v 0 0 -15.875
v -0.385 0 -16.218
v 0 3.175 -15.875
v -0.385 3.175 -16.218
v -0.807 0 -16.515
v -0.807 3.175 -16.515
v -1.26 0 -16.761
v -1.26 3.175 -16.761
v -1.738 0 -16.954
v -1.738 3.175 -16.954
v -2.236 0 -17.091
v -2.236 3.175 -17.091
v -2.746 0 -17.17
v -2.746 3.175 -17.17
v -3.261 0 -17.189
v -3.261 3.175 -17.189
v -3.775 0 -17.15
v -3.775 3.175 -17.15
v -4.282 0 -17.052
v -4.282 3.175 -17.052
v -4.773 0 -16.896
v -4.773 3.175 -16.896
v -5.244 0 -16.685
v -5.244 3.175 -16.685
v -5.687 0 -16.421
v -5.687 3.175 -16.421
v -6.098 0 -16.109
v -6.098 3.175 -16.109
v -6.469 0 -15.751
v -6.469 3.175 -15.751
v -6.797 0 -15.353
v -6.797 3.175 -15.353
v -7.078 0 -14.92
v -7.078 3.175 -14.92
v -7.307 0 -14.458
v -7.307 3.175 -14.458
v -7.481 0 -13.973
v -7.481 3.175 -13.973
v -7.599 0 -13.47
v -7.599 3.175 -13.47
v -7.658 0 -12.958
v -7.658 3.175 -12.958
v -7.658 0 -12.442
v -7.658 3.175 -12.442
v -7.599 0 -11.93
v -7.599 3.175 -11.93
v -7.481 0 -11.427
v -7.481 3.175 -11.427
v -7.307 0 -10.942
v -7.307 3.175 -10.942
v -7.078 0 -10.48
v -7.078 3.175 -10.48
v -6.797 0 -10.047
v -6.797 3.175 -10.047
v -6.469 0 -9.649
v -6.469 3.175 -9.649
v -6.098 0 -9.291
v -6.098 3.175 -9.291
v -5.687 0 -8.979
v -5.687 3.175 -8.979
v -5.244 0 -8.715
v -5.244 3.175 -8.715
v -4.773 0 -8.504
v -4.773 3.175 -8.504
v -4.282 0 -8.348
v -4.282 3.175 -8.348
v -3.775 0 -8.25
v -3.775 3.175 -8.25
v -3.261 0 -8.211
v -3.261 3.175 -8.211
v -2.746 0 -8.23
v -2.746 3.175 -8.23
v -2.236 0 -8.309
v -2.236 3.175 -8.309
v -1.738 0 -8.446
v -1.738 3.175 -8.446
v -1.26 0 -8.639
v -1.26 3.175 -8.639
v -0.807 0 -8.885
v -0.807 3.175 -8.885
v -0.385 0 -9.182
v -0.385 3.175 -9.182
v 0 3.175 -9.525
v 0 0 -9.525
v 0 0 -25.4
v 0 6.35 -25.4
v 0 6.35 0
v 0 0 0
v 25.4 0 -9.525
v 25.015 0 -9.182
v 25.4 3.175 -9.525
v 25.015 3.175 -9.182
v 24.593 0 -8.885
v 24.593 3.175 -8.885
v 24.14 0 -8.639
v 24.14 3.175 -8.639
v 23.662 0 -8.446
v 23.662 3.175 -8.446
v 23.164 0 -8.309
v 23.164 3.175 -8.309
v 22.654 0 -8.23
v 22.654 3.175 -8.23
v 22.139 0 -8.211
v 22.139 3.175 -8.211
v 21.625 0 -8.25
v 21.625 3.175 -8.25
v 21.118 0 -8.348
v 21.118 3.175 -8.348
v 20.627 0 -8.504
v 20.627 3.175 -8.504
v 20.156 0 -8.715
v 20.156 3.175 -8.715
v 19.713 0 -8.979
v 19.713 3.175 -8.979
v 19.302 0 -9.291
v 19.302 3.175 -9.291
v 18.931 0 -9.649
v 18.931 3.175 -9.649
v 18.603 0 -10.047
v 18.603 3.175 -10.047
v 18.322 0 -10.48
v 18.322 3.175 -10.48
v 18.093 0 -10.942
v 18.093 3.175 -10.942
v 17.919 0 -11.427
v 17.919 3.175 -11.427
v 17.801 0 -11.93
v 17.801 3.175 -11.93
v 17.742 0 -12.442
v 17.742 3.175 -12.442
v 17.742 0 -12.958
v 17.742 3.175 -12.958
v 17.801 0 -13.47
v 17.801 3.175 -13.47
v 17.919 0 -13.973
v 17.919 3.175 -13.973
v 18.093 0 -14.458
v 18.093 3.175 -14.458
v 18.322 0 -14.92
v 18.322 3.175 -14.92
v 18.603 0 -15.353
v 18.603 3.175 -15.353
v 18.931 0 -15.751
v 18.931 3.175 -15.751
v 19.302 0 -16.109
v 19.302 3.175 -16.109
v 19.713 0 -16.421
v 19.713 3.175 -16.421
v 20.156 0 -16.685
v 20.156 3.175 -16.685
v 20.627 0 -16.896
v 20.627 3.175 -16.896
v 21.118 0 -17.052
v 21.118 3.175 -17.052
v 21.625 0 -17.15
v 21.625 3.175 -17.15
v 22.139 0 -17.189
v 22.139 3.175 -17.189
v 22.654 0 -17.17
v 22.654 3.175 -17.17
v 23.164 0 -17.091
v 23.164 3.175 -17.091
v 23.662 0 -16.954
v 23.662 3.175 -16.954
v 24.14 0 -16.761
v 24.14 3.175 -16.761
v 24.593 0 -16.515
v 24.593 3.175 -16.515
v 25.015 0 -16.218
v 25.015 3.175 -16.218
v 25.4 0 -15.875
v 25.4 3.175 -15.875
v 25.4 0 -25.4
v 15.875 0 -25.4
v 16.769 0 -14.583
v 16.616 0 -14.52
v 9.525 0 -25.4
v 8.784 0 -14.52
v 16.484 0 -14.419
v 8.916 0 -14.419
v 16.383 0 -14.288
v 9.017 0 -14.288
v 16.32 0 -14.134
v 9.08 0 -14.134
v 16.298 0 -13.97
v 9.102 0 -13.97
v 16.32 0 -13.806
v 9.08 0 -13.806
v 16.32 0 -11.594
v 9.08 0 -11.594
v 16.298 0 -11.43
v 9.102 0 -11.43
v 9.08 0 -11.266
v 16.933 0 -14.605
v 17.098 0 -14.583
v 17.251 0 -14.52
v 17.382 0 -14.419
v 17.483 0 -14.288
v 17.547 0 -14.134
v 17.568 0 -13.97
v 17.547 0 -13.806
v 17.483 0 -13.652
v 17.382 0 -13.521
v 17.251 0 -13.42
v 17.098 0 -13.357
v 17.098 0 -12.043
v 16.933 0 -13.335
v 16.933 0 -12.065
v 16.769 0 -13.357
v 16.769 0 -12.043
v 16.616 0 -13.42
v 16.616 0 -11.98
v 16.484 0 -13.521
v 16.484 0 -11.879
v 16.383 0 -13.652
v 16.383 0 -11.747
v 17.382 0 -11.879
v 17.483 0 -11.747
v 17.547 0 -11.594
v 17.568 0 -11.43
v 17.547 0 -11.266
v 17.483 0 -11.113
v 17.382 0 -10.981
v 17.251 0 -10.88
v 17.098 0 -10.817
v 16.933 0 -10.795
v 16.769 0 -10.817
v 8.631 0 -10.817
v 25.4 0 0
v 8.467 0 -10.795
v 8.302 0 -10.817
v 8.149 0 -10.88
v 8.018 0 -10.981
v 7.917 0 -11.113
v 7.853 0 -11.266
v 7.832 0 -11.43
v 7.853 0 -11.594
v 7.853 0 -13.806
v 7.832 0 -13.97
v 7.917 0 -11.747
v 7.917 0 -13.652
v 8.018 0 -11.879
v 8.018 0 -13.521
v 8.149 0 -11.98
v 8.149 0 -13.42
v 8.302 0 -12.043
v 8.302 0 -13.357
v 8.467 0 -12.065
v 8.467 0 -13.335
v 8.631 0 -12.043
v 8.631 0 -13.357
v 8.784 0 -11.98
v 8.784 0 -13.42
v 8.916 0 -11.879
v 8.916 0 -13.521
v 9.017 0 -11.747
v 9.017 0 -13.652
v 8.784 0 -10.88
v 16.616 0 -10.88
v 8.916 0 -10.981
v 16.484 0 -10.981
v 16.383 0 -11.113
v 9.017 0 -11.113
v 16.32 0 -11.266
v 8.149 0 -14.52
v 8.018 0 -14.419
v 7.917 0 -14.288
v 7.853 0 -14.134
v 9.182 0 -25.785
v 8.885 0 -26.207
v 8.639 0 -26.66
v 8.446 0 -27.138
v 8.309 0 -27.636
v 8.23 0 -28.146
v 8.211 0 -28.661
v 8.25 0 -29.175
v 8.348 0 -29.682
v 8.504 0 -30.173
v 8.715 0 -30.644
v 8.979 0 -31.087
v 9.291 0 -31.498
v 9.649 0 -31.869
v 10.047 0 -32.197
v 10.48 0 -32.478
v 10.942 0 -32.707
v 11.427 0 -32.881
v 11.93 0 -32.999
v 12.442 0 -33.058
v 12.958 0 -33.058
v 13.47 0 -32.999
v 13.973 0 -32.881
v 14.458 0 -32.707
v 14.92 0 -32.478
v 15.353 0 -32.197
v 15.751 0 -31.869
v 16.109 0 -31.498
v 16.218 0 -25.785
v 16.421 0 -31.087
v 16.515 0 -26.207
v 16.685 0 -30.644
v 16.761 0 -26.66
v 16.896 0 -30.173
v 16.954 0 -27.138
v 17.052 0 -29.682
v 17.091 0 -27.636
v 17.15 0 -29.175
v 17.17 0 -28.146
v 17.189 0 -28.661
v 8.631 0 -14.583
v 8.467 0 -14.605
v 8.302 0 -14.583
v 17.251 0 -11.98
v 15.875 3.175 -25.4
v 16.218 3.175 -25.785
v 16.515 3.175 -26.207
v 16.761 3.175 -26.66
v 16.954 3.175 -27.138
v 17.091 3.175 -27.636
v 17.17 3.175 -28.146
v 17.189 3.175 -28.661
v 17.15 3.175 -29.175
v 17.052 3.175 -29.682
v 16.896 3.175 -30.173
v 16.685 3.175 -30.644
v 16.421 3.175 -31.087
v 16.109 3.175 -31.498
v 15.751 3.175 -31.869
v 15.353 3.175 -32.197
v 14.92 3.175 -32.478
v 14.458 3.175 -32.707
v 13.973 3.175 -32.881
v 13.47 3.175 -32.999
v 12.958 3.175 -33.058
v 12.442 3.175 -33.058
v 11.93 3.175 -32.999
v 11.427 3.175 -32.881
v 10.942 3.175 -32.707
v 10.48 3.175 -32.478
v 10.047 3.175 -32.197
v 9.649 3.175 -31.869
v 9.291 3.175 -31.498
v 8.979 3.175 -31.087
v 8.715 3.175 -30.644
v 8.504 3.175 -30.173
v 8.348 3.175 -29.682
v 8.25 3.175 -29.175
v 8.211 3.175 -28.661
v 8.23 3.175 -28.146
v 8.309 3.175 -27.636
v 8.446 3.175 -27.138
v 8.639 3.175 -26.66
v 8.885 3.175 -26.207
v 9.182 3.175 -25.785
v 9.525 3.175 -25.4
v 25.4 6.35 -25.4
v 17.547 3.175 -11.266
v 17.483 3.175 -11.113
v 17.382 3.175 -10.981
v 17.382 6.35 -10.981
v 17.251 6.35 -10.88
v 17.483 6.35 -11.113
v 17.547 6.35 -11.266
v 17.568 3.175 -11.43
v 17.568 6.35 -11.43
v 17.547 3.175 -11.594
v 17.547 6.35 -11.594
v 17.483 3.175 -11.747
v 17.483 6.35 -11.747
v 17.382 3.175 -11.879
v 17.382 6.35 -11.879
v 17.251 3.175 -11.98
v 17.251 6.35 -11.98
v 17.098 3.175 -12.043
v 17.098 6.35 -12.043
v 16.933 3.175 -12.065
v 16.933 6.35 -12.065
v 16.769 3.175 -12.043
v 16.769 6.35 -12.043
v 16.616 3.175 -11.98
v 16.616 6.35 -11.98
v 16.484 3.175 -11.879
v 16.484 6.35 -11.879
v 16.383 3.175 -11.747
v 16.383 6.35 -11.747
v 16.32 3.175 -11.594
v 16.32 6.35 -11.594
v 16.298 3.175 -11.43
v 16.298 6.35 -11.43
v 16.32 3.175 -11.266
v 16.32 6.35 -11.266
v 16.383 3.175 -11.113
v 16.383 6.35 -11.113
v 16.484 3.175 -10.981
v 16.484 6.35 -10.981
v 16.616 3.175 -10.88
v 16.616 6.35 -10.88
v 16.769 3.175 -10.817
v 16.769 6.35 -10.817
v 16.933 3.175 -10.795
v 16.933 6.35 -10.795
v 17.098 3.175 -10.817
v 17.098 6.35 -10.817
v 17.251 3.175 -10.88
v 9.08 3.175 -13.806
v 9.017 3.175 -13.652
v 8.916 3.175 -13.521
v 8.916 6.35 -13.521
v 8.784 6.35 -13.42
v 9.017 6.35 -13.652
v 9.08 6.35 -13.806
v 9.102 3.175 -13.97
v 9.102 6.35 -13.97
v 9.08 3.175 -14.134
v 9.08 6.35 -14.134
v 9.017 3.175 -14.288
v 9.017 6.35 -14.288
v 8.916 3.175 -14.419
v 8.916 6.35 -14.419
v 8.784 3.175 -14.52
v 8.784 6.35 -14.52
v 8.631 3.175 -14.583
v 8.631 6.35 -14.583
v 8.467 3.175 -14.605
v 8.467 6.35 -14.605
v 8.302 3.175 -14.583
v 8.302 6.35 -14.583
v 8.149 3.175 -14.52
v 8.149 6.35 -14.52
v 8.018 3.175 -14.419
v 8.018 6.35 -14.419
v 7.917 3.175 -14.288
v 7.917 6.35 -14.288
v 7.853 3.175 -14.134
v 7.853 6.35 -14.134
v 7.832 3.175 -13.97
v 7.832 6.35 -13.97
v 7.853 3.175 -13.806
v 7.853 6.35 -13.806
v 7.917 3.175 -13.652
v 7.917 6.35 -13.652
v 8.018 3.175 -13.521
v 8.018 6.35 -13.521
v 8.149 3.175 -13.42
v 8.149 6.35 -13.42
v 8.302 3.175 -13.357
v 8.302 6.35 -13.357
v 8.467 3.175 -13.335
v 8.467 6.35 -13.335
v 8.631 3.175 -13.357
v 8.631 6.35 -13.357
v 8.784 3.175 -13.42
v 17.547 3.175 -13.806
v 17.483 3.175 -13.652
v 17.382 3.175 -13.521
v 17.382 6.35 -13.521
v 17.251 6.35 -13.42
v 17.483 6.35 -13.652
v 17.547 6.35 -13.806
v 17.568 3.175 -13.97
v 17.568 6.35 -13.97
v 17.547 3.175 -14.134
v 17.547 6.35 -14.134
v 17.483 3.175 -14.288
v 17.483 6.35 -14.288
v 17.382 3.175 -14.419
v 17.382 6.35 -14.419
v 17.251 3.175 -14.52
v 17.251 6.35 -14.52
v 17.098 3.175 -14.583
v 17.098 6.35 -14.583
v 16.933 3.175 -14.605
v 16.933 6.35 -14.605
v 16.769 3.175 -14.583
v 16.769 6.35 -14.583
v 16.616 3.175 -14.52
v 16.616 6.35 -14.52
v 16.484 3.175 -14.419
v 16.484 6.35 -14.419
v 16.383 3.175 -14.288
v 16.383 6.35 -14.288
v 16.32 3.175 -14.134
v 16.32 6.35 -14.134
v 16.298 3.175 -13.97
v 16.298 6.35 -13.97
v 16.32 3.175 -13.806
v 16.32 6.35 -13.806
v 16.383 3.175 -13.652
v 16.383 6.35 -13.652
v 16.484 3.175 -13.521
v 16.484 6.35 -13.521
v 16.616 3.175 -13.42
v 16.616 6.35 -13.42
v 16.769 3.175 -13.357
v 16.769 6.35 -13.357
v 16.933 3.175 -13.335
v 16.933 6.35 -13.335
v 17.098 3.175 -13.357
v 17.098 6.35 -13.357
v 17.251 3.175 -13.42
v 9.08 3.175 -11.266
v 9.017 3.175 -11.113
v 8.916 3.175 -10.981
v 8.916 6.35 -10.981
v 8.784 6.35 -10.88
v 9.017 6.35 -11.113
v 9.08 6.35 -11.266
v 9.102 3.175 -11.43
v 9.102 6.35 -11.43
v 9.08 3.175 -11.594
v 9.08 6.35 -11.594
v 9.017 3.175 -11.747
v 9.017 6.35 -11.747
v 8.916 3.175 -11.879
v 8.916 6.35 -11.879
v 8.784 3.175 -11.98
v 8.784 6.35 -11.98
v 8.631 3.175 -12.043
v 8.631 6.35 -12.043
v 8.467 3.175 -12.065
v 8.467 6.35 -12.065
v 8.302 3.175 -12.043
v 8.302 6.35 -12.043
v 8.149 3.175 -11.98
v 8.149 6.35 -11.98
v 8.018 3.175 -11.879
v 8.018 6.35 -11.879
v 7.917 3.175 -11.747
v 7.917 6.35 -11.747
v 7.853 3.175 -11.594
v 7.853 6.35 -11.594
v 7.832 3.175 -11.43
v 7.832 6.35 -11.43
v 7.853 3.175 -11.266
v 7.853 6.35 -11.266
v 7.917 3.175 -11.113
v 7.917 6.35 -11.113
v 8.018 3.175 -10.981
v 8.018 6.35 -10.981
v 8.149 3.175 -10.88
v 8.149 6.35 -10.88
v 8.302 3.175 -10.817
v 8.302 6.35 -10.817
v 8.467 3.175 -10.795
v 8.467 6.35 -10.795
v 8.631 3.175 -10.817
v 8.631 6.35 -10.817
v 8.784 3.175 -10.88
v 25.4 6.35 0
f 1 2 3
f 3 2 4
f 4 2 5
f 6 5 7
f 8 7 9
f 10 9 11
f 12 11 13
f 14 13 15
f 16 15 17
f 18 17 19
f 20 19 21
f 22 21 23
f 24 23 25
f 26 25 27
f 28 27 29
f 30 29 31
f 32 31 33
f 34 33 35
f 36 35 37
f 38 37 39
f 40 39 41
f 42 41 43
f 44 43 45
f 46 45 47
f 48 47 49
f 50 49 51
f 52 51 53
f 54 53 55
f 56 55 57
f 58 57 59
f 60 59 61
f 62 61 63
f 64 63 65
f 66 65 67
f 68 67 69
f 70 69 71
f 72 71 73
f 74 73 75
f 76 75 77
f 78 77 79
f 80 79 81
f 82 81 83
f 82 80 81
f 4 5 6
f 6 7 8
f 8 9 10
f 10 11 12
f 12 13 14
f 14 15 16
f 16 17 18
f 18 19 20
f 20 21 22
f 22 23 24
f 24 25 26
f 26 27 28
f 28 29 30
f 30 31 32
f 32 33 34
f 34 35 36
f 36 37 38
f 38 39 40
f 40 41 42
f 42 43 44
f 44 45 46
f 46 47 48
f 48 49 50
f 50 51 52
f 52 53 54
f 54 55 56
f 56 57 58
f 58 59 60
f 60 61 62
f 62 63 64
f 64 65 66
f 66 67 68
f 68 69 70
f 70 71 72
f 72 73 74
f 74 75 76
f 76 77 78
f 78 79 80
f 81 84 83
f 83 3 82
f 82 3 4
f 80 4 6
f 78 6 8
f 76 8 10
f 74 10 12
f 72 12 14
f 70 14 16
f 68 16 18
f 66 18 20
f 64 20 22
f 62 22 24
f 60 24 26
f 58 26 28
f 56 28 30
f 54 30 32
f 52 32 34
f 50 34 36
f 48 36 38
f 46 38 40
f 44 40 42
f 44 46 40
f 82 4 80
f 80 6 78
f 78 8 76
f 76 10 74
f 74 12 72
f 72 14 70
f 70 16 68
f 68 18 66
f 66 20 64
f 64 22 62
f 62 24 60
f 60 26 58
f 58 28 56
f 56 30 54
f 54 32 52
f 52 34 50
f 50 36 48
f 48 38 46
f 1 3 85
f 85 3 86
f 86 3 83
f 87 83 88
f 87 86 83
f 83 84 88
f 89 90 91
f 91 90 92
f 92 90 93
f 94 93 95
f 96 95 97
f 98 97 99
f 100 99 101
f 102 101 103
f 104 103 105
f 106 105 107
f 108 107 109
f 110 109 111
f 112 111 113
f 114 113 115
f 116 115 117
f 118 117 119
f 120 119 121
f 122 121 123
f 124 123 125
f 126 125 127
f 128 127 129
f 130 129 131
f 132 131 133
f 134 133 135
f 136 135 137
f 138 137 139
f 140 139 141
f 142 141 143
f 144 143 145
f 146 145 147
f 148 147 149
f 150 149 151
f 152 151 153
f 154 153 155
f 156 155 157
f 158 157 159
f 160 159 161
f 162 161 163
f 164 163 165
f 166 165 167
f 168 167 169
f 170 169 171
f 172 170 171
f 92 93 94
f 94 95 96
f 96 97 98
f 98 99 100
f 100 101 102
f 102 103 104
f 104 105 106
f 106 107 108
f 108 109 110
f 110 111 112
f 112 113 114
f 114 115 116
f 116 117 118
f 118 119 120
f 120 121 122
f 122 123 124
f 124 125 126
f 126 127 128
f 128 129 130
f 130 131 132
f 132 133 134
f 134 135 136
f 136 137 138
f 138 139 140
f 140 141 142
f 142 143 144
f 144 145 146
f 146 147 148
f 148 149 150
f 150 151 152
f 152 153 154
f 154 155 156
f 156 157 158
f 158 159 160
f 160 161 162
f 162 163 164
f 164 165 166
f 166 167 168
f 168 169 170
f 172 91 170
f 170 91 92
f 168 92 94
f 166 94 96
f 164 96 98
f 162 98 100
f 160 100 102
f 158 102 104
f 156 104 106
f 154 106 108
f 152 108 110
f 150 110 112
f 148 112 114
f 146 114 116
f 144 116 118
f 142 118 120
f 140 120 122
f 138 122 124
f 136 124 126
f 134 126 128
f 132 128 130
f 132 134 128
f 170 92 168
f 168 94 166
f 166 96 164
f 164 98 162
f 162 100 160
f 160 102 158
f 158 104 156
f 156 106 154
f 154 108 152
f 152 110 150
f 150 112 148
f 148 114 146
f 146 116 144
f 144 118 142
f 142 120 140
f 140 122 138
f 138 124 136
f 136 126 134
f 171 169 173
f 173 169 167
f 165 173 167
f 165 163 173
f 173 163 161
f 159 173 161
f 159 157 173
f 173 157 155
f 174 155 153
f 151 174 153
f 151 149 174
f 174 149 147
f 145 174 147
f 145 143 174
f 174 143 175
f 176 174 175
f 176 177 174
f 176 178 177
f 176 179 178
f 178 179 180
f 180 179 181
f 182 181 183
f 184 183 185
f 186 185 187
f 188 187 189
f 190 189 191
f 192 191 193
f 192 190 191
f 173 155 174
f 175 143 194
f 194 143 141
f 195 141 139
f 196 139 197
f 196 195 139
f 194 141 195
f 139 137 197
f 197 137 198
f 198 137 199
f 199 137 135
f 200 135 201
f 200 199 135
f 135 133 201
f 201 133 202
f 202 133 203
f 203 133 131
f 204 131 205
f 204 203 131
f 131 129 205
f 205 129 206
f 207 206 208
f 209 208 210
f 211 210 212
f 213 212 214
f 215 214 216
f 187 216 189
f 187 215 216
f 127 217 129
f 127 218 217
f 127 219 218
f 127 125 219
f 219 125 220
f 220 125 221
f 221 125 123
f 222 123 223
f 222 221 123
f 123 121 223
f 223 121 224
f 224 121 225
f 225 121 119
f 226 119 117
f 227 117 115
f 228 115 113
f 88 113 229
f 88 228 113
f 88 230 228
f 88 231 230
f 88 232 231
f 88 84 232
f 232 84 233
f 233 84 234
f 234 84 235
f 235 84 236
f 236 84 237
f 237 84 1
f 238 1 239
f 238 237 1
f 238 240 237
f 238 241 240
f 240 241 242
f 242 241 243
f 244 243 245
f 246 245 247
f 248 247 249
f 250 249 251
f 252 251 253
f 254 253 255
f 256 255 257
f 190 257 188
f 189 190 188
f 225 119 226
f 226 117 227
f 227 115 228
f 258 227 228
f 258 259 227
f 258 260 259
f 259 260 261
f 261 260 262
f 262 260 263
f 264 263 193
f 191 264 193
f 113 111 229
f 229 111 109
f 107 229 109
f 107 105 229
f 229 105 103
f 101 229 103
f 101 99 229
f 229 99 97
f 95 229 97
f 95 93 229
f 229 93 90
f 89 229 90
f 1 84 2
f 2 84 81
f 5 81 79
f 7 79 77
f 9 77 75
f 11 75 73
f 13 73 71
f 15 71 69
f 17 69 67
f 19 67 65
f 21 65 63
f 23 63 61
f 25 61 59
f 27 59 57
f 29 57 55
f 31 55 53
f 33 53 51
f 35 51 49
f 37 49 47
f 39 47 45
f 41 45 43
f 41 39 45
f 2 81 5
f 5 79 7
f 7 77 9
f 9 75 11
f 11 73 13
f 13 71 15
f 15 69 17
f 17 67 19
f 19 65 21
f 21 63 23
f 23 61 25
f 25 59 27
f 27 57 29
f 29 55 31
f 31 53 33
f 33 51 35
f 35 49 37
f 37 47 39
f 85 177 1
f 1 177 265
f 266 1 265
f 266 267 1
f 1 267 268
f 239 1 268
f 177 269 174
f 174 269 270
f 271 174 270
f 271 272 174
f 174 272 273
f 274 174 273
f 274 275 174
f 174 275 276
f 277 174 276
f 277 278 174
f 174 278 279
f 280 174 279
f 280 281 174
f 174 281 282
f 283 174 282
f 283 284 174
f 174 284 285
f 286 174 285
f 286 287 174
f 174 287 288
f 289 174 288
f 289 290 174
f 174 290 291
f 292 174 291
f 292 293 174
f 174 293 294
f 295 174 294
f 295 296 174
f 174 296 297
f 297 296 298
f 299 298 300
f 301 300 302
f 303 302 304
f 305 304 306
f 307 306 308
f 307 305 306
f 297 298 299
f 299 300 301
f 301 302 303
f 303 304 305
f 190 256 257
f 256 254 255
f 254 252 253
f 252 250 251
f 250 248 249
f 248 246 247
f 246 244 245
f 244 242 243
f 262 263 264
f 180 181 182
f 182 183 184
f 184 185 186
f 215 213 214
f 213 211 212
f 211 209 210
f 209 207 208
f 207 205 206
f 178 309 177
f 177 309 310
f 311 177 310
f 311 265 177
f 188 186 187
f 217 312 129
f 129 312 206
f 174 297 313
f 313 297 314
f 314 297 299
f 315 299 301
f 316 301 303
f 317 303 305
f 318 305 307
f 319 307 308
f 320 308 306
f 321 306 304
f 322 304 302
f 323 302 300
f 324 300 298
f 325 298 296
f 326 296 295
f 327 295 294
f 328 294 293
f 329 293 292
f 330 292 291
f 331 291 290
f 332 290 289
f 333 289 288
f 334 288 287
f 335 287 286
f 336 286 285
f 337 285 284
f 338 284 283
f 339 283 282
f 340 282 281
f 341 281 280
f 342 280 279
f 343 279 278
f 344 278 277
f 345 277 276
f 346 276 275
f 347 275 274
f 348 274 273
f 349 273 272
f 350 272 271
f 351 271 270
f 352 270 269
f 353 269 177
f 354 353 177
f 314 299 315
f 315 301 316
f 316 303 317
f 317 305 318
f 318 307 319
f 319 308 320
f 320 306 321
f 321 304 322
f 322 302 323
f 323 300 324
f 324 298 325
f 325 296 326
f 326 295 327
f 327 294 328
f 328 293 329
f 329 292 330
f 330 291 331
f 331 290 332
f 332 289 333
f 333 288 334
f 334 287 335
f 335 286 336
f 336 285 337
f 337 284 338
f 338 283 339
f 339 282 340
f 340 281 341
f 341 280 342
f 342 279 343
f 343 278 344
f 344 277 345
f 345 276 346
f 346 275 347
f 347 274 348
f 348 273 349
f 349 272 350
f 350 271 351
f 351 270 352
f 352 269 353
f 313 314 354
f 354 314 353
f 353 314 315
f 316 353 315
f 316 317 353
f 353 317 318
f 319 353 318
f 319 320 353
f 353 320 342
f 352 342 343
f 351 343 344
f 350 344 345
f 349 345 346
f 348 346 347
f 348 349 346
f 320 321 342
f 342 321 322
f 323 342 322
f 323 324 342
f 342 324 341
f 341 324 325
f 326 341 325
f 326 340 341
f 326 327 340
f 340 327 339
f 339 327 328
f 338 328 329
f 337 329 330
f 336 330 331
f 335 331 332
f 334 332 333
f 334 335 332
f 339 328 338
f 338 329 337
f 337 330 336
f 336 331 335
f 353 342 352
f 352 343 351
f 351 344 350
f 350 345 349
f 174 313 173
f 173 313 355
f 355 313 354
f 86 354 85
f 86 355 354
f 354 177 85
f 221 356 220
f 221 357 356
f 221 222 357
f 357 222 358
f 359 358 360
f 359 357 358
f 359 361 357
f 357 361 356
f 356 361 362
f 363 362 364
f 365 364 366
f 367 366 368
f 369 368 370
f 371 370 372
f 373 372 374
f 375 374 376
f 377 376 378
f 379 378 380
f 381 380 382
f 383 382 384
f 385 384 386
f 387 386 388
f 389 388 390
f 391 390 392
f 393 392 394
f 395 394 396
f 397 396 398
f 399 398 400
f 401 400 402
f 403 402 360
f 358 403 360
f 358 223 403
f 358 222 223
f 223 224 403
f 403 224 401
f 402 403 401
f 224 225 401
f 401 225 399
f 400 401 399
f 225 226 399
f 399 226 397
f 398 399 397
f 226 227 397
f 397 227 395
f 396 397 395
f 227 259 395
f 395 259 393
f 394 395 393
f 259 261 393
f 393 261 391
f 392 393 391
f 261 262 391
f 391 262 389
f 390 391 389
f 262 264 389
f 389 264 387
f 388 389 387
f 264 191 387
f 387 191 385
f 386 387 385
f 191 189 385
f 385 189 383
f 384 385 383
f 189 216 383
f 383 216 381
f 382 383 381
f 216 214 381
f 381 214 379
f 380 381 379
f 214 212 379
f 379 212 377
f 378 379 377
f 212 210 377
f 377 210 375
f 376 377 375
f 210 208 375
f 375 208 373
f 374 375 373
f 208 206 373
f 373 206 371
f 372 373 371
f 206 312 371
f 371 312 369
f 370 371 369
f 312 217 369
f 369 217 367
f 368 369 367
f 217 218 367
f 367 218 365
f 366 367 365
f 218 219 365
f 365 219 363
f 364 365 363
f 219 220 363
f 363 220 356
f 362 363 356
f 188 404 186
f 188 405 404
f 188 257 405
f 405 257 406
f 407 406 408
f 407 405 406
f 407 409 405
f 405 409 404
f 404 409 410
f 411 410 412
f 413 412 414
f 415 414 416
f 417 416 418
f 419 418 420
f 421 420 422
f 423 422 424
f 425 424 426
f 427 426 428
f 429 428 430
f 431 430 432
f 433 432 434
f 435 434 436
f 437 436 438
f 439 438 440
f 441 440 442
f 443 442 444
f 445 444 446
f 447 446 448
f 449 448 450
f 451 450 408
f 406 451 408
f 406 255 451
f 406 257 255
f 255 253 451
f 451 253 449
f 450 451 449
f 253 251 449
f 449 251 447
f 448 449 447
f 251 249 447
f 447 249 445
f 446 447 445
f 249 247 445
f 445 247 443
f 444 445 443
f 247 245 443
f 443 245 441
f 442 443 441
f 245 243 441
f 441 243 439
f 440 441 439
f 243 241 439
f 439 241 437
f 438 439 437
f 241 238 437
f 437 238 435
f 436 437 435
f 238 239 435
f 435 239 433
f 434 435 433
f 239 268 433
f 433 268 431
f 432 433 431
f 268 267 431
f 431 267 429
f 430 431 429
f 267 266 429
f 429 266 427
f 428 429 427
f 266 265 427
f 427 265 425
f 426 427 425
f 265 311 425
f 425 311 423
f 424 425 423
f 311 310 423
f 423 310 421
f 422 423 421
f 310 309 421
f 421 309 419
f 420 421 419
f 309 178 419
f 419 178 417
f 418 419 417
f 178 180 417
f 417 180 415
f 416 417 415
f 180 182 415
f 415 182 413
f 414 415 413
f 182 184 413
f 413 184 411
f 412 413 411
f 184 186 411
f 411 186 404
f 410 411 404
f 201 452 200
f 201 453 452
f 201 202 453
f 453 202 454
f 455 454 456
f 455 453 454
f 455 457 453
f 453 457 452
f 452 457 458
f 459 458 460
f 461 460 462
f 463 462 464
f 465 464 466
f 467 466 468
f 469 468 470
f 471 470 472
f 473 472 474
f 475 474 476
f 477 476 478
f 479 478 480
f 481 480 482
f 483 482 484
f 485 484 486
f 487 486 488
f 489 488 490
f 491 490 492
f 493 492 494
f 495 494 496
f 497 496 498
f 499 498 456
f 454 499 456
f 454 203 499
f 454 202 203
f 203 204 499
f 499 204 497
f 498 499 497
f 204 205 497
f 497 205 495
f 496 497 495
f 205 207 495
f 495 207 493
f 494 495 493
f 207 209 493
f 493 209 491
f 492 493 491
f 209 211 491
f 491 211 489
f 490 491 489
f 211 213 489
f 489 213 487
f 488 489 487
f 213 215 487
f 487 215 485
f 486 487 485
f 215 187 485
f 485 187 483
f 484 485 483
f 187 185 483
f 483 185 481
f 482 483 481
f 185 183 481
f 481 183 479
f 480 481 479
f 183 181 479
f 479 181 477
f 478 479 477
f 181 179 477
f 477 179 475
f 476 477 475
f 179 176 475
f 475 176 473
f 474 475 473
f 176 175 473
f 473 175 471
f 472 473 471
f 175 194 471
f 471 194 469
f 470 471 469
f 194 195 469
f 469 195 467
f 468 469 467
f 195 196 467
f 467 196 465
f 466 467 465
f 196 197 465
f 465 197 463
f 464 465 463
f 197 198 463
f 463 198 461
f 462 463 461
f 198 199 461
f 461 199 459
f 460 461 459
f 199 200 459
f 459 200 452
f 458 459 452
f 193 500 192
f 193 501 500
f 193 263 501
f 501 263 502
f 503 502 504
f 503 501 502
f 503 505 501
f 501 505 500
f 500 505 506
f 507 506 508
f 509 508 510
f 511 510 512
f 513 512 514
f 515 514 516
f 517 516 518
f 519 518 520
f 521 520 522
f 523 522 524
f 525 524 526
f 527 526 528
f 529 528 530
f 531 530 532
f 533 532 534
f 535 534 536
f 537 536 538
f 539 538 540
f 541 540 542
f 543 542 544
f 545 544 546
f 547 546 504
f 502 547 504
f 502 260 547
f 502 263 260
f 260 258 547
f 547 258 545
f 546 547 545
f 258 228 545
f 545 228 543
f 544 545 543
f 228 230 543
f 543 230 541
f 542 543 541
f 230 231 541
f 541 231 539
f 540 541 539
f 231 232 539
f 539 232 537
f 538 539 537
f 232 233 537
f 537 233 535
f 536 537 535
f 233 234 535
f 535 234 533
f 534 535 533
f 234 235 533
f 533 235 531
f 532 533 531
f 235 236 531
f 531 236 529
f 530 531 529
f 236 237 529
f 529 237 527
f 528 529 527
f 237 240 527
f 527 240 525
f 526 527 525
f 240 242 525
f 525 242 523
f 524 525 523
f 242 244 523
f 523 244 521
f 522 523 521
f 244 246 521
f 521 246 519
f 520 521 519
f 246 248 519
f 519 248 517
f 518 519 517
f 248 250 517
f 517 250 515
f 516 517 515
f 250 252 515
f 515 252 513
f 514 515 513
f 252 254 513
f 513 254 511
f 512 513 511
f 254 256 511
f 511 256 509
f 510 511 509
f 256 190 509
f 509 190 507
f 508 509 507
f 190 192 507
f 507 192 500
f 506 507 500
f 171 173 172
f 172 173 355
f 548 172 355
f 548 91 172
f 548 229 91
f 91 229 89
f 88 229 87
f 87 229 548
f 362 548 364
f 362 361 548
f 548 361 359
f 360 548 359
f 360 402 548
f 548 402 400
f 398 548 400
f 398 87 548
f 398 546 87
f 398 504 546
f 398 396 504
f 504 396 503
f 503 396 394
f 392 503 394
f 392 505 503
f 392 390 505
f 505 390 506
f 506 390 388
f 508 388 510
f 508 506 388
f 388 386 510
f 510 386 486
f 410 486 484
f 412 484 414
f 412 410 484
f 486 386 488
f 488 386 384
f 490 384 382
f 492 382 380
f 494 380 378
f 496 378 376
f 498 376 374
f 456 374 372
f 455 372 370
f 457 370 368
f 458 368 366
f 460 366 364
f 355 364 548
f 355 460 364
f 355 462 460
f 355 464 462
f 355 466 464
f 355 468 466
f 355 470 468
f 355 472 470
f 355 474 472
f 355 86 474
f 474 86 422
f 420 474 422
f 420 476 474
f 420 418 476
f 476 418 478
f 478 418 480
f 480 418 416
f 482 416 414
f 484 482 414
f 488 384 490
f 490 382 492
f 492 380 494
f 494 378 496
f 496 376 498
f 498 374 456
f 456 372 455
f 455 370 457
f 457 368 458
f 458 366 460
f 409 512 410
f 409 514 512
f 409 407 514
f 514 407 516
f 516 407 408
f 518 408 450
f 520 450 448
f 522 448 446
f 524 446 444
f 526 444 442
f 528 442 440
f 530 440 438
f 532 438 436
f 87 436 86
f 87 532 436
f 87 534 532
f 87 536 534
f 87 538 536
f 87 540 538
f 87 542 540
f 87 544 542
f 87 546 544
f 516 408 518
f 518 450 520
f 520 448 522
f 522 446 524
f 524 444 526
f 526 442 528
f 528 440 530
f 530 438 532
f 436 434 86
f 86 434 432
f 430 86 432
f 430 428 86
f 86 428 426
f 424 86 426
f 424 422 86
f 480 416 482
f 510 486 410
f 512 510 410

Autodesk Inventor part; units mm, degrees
ref_plane "YZ Plane" through (0, 0, 0) normal (1, 0, 0) x (0, 1, 0)
ref_plane "XZ Plane" through (0, 0, 0) normal (0, 1, 0) x (-1, 0, 0)
ref_plane "XY Plane" through (0, 0, 0) normal (0, 0, 1) x (1, 0, 0)
sketch "Sketch1" plane through (0, 0, 0) normal (0, 1, 0) x (-1, 0, 0)
  line L0 (0, 0) -> (-25.4, 0)
  line L1 (-25.4, 0) -> (-25.4, -25.4)
  line L2 (-25.4, -25.4) -> (0, -25.4)
  line L3 (0, -25.4) -> (0, 0)
  dimension "d0" = 25.4
extrude "Extrusion1" add sketch "Sketch1" along normal blind 6.35
sketch "Sketch2" plane through (0, 6.35, 0) normal (0, 1, 0) x (1, 0, 0)
  circle A0 centre (8.4667, 13.97) radius 0.635
  circle A1 centre (16.9333, 13.97) radius 0.635
  circle A2 centre (16.9333, 11.43) radius 0.635
  circle A3 centre (8.4667, 11.43) radius 0.635
  line L0 (25.4, 0) -> (25.4, 25.4) projected
  line L1 (0, 0) -> (25.4, 0) projected
  dimension "d3" = 8.4667
  dimension "d4" = 8.4667
  dimension "d5" = 2.54
  dimension "d6" = 1.27
  dimension "d7" = 11.43
extrude "Extrusion2" cut sketch "Sketch2" against normal blind 6.35
sketch "Sketch4" plane through (0, 0, 0) normal (0, -1, 0) x (1, 0, 0)
  line L0 (25.4, -25.4) -> (0, -25.4) projected
  arc A0 (9.525, -25.4) -> (15.875, -25.4) centre (12.7, -28.575) ccw
  line L1 (15.875, -25.4) -> (9.525, -25.4)
  point P0 (0, 0)
  dimension "d10" = 90
  dimension "d11" = 6.35
  dimension "d12" = 9.525
extrude "Extrusion3" add sketch "Sketch4" against normal blind 3.175
sketch "Sketch6" plane through (0, 0, 0) normal (0, -1, 0) x (1, 0, 0)
  line L0 (25.4, 0) -> (25.4, -25.4) projected
  arc A0 (25.4, -9.525) -> (25.4, -15.875) centre (22.225, -12.7) ccw
  line L1 (25.4, -15.875) -> (25.4, -9.525)
  point P0 (0, 0)
  dimension "d21" = 6.35
  dimension "d22" = 90
  dimension "d23" = 9.525
extrude "Extrusion5" cut sketch "Sketch6" against normal blind 3.175
sketch "Sketch7" plane through (0, 0, 0) normal (0, -1, 0) x (1, 0, 0)
  line L0 (0, -25.4) -> (0, 0) projected
  arc A0 (0, -9.525) -> (0, -15.875) centre (-3.175, -12.7) ccw
  line L1 (0, -15.875) -> (0, -9.525)
  dimension "d26" = 6.35
  dimension "d27" = 90
  dimension "d28" = 9.525
extrude "Extrusion6" add sketch "Sketch7" against normal blind 3.175
equation "\"d1\" = 0.25 * d0"
equation "\"d3\" = 0.333333 * d0"
equation "\"d4\" = d3"
equation "\"d8\" = 0.25 * d0"
equation "\"d11\" = 0.25 * d0"
equation "\"d12\" = 0.375 * d0"
equation "\"d13\" = 0.5 * d1"
equation "\"d21\" = 0.25 * d0"
equation "\"d23\" = 0.375 * d0"
equation "\"d24\" = 0.5 * d1"
equation "\"d26\" = 0.25 * d0"
equation "\"d28\" = 0.375 * d0"
equation "\"d29\" = 0.5 * d1"
properties part number "pieceBase"
